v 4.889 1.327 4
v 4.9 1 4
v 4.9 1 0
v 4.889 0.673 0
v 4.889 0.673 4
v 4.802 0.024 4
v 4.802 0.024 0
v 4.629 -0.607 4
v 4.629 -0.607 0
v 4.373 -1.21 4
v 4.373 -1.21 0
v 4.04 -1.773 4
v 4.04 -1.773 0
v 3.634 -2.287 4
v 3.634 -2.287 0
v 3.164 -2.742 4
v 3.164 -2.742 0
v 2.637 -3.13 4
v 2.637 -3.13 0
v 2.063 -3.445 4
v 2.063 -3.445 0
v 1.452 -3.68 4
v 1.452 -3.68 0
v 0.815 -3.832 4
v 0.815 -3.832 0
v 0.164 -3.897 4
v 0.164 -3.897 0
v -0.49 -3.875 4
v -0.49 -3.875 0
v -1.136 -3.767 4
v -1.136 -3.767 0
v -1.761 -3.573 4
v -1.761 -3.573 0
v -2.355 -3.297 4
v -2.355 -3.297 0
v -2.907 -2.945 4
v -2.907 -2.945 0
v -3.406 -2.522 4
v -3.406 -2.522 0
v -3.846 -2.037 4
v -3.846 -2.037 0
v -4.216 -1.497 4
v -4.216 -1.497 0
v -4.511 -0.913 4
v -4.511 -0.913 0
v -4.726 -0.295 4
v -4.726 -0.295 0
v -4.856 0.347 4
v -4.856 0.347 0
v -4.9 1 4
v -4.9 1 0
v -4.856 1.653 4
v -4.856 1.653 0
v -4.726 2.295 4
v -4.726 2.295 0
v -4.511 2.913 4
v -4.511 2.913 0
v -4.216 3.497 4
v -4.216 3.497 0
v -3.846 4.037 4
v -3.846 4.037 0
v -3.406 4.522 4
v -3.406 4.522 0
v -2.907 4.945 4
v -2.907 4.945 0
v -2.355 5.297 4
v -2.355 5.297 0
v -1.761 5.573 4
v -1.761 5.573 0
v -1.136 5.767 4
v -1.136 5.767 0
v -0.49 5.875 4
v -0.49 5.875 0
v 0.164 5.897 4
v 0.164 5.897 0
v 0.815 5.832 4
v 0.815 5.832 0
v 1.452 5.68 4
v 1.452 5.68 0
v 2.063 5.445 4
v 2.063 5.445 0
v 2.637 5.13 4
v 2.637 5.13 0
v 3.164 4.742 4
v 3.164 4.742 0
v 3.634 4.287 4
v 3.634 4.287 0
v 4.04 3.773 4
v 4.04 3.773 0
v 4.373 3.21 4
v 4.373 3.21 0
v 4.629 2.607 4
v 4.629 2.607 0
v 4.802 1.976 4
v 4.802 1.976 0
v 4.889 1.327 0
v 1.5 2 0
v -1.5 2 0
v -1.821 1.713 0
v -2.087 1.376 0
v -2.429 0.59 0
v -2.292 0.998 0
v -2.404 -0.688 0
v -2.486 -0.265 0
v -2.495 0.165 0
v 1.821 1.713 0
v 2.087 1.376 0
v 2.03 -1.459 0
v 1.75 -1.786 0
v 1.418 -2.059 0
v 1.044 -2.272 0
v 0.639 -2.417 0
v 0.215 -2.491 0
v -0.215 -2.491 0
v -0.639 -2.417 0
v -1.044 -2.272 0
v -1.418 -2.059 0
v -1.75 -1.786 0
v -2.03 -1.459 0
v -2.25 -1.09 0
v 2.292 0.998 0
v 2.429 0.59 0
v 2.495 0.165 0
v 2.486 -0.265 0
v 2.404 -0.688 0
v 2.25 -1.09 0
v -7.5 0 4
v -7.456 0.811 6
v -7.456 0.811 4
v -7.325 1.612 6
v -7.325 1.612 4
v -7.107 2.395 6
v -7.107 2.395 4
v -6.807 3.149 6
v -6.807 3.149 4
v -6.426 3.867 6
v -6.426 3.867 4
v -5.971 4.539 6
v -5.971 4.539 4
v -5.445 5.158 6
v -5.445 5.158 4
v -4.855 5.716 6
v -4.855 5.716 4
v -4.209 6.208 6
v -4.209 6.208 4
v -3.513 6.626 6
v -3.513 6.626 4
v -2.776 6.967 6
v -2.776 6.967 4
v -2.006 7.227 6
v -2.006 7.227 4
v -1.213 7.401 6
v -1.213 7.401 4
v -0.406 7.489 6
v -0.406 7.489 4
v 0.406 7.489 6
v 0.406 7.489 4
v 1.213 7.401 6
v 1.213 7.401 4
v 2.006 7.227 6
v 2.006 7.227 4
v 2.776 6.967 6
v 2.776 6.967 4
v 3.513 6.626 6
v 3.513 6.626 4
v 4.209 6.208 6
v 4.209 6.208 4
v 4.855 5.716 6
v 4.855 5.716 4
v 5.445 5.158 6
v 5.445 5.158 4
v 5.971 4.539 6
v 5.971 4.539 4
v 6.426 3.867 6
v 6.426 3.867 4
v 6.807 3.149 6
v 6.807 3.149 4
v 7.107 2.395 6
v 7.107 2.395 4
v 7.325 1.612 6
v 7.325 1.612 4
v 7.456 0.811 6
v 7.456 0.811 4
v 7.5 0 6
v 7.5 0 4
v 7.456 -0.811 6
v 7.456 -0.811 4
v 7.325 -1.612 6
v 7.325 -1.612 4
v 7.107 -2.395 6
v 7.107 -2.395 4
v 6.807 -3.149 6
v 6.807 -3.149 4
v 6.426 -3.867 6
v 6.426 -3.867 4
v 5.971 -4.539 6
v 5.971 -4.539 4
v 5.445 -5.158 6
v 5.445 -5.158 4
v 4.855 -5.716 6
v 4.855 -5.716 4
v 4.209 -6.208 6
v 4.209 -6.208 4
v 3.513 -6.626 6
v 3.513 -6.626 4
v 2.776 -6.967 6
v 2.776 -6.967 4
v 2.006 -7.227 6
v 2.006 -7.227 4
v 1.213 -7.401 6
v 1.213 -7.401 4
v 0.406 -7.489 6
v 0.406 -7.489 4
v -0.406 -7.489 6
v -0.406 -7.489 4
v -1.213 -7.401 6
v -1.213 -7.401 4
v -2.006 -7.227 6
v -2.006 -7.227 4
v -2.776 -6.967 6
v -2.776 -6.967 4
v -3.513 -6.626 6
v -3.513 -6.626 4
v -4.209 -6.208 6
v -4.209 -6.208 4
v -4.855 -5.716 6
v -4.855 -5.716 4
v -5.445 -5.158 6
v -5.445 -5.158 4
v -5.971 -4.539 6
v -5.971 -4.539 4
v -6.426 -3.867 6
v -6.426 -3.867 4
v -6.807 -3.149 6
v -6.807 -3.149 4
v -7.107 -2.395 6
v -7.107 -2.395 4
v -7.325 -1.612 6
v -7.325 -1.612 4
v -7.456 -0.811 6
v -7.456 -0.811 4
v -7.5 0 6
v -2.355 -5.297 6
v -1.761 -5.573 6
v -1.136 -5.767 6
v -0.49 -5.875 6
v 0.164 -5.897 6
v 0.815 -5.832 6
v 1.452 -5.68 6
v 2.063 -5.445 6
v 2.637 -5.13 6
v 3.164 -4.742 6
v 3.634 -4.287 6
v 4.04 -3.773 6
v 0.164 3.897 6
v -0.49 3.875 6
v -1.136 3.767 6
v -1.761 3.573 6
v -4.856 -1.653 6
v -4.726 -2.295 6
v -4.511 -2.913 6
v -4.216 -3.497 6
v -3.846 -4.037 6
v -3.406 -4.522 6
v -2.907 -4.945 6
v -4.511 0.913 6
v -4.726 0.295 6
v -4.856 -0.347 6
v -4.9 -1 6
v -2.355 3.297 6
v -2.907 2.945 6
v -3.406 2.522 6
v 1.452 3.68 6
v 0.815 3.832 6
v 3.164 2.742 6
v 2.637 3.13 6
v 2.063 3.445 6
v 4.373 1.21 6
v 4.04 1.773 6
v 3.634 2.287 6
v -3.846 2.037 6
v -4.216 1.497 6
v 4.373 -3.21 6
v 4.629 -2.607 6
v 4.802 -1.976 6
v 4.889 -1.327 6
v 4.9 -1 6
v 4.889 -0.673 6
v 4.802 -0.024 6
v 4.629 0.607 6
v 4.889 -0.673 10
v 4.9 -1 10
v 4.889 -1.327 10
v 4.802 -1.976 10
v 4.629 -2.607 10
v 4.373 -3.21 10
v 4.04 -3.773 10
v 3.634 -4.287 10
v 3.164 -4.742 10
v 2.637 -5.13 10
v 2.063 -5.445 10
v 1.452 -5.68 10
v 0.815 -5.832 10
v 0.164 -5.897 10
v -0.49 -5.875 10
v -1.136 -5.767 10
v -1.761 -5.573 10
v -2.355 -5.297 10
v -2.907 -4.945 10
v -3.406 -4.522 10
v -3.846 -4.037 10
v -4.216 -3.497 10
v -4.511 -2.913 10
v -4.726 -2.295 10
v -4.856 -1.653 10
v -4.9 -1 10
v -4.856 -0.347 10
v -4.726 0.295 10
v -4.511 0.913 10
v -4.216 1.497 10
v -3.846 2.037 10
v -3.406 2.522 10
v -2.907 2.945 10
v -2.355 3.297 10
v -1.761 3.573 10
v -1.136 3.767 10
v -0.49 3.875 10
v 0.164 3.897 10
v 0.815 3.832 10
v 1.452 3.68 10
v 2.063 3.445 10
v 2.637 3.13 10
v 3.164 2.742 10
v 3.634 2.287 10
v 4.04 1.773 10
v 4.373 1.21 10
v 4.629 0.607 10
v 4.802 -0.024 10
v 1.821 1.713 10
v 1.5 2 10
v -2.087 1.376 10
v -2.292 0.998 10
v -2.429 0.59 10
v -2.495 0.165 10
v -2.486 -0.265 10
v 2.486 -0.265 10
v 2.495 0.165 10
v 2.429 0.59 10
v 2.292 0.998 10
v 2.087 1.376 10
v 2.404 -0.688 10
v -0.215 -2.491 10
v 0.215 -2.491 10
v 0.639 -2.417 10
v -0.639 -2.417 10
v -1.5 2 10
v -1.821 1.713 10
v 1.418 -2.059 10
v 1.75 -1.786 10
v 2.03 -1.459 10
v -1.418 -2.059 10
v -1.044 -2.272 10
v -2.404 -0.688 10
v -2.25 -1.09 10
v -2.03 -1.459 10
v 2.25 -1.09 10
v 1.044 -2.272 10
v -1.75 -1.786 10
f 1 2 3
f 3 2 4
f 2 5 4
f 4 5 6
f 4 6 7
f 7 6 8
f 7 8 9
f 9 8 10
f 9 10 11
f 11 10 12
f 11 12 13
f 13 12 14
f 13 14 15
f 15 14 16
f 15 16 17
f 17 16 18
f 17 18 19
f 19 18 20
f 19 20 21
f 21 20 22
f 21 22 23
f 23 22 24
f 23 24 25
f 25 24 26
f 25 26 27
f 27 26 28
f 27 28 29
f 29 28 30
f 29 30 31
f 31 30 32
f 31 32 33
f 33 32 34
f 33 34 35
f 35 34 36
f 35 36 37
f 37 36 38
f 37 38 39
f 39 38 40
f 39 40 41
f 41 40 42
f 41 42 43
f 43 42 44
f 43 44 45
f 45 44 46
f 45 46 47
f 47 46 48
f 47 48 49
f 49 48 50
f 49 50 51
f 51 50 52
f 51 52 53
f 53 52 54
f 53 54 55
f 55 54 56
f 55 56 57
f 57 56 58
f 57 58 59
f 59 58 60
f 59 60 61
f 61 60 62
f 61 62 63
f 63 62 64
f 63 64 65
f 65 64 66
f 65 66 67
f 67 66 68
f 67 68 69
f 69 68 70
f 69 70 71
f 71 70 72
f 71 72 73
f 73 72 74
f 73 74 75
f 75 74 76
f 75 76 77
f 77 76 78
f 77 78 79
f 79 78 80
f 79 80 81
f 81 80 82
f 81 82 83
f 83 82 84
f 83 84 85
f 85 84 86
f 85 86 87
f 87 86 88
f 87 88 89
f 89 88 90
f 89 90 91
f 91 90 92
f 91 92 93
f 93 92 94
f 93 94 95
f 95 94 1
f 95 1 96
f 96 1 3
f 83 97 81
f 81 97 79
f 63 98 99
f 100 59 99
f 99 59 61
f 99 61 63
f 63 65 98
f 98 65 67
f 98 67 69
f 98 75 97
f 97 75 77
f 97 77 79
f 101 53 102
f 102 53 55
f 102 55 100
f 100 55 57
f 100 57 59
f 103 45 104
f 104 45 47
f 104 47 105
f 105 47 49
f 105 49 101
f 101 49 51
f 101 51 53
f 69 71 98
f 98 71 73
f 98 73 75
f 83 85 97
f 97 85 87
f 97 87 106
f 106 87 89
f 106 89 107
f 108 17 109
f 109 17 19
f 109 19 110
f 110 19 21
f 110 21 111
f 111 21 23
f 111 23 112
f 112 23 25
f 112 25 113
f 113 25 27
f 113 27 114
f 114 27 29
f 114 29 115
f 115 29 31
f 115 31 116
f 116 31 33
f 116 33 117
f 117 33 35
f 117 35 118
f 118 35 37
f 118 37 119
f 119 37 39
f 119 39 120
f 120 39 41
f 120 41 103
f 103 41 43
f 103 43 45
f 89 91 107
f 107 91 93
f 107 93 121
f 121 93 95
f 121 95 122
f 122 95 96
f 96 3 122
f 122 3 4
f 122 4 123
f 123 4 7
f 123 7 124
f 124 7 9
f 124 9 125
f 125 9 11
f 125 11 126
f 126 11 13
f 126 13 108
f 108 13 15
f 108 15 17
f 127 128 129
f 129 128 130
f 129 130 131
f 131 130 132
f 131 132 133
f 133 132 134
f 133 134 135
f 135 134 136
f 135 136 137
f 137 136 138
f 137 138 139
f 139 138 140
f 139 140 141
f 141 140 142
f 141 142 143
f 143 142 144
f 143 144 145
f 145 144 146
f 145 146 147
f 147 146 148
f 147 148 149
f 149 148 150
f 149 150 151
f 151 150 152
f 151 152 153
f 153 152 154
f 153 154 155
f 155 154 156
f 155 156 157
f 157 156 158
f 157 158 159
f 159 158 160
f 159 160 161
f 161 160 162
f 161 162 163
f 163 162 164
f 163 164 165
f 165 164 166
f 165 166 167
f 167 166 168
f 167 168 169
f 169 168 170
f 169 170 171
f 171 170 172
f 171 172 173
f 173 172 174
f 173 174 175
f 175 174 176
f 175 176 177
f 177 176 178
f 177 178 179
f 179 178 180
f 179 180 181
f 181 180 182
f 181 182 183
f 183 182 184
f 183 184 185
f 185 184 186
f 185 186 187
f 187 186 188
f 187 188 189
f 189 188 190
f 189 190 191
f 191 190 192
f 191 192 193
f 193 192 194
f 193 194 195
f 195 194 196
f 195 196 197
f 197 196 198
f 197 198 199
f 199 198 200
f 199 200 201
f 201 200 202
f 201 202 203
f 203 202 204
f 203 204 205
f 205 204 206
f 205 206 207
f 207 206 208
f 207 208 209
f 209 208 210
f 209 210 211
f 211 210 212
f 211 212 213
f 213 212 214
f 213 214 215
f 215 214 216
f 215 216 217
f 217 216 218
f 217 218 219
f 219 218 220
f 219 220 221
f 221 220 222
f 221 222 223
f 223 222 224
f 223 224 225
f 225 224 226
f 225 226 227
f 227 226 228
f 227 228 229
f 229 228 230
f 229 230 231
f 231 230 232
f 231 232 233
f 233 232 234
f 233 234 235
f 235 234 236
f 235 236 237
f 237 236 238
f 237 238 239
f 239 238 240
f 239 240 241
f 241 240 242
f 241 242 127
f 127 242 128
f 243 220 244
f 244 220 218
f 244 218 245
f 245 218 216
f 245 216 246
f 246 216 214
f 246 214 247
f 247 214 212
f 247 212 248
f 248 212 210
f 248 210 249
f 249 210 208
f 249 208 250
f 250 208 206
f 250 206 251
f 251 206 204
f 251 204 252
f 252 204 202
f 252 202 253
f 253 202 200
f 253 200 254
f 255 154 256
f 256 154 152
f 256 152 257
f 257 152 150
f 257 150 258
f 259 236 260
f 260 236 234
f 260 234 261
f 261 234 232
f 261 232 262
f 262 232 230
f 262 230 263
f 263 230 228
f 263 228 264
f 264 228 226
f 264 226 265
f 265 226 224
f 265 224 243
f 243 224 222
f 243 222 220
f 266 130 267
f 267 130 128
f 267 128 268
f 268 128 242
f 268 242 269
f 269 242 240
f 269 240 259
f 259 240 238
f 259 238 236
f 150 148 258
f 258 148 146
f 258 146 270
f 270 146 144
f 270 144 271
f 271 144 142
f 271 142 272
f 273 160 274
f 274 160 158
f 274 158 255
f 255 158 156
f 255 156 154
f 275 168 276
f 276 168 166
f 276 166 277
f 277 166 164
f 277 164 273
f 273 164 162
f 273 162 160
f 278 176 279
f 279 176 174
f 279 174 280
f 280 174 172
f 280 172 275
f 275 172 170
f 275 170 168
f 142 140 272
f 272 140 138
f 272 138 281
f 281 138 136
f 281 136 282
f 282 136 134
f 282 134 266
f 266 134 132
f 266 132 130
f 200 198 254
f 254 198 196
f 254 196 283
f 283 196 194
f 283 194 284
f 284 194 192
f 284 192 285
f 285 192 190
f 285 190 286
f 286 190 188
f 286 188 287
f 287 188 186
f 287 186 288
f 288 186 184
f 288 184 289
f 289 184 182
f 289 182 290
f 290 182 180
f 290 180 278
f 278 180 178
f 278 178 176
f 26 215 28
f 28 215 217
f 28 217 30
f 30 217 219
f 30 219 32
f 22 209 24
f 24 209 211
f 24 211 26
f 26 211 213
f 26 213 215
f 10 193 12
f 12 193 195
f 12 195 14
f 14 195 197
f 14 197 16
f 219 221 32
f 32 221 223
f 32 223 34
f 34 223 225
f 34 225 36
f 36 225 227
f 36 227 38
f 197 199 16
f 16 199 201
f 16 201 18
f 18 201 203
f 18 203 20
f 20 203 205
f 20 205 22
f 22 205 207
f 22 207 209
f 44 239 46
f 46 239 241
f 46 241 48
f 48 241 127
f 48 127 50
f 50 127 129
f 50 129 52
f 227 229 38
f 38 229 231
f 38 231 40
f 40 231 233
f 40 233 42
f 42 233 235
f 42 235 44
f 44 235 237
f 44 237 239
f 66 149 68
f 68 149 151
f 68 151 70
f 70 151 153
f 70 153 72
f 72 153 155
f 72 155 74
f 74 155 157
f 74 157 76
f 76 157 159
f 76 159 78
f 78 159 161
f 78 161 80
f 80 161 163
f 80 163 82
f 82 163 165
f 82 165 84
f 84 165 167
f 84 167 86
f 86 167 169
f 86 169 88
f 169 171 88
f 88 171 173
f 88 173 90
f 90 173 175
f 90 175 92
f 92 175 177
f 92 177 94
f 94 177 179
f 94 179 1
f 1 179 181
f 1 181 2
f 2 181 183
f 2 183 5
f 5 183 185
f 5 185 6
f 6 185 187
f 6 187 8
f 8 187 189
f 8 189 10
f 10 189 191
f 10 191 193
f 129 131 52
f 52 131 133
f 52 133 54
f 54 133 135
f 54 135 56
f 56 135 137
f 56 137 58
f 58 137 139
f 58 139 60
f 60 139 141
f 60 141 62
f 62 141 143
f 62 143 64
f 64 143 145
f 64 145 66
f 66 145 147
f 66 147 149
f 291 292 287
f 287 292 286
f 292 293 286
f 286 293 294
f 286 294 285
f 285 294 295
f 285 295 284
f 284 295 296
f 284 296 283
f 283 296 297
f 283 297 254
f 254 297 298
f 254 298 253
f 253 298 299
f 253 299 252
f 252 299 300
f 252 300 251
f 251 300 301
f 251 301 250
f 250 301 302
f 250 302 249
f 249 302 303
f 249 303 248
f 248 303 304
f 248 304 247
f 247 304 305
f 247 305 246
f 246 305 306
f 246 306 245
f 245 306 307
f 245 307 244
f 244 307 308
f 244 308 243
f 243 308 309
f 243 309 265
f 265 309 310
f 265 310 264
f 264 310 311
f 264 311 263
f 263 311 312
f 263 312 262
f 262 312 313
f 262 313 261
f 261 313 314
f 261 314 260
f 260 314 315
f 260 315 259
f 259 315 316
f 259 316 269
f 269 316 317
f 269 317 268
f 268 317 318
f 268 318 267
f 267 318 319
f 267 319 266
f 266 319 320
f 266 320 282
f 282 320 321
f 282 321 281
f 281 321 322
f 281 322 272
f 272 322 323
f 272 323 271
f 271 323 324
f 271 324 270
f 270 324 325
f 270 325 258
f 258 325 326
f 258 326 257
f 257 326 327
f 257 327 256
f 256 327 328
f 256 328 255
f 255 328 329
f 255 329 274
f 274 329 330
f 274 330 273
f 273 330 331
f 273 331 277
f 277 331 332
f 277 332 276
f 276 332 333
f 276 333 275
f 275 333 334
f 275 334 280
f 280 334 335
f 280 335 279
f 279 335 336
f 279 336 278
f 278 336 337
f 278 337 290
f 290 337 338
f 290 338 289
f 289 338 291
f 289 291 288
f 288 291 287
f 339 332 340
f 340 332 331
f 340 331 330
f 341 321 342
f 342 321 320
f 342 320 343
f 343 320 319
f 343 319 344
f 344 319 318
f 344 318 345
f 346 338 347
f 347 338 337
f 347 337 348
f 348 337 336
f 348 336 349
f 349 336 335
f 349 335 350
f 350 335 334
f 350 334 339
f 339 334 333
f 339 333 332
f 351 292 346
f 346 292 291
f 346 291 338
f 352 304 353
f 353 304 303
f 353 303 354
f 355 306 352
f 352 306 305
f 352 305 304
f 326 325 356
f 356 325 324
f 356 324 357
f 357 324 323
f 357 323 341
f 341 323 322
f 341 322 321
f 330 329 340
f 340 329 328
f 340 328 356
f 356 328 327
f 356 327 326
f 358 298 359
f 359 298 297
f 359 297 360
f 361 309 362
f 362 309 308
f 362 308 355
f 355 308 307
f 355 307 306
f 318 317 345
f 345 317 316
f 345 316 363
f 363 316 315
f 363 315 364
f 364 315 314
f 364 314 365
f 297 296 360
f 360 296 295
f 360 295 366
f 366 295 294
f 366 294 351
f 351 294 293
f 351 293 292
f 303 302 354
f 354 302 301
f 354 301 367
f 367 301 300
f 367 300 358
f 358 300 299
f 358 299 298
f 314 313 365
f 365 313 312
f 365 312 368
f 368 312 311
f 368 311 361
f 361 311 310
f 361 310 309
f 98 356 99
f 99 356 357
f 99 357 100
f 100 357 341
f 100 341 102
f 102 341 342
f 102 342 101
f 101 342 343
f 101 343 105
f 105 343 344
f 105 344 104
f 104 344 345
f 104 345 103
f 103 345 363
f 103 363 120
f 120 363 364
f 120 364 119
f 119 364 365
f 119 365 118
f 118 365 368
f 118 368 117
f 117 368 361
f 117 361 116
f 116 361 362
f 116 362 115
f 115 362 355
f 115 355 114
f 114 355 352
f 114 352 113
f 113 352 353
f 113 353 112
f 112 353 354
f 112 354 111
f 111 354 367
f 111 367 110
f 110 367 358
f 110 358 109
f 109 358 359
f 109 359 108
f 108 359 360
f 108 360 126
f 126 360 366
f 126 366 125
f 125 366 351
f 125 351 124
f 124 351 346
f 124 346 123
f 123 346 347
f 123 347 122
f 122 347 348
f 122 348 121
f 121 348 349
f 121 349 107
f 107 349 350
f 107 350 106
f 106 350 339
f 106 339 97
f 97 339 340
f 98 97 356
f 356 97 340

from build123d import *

# Parameters (mm, degrees)
ESQUISSE1_R             = 4.9
BOSS_EXTRU_1_DEPTH      = 4
ESQUISSE4_R             = 7.5
BOSS_EXTRU_4_DEPTH      = 2
ESQUISSE5_R             = 4.9
BOSS_EXTRU_5_DEPTH      = 4
ENL_V_MAT_EXTRU_1_DEPTH = 15.577379737


with BuildPart() as part:
    # Esquisse1 → Boss.-Extru.1 (new body)
    with BuildSketch(Plane.XY):
        with Locations((0, 1)):
            Circle(ESQUISSE1_R)
    extrude(amount=BOSS_EXTRU_1_DEPTH)

    # Esquisse4 → Boss.-Extru.4 (add)
    with BuildSketch(Plane.XY.offset(4)):
        Circle(ESQUISSE4_R)
    extrude(amount=BOSS_EXTRU_4_DEPTH)

    # Esquisse5 → Boss.-Extru.5 (add)
    with BuildSketch(Plane.XY.offset(6)):
        with Locations((0, -1)):
            Circle(ESQUISSE5_R)
    extrude(amount=BOSS_EXTRU_5_DEPTH)

    # Esquisse6 → Enlèv. mat.-Extru.1 (cut, through all)
    with BuildSketch(Plane.XY.offset(10)):
        with BuildLine():
            Line((-1.5, 2), (1.5, 2))
            ThreePointArc((1.5, 2), (0, -2.5), (-1.5, 2))
        make_face()
    extrude(amount=-ENL_V_MAT_EXTRU_1_DEPTH, mode=Mode.SUBTRACT)


solid = part.part
